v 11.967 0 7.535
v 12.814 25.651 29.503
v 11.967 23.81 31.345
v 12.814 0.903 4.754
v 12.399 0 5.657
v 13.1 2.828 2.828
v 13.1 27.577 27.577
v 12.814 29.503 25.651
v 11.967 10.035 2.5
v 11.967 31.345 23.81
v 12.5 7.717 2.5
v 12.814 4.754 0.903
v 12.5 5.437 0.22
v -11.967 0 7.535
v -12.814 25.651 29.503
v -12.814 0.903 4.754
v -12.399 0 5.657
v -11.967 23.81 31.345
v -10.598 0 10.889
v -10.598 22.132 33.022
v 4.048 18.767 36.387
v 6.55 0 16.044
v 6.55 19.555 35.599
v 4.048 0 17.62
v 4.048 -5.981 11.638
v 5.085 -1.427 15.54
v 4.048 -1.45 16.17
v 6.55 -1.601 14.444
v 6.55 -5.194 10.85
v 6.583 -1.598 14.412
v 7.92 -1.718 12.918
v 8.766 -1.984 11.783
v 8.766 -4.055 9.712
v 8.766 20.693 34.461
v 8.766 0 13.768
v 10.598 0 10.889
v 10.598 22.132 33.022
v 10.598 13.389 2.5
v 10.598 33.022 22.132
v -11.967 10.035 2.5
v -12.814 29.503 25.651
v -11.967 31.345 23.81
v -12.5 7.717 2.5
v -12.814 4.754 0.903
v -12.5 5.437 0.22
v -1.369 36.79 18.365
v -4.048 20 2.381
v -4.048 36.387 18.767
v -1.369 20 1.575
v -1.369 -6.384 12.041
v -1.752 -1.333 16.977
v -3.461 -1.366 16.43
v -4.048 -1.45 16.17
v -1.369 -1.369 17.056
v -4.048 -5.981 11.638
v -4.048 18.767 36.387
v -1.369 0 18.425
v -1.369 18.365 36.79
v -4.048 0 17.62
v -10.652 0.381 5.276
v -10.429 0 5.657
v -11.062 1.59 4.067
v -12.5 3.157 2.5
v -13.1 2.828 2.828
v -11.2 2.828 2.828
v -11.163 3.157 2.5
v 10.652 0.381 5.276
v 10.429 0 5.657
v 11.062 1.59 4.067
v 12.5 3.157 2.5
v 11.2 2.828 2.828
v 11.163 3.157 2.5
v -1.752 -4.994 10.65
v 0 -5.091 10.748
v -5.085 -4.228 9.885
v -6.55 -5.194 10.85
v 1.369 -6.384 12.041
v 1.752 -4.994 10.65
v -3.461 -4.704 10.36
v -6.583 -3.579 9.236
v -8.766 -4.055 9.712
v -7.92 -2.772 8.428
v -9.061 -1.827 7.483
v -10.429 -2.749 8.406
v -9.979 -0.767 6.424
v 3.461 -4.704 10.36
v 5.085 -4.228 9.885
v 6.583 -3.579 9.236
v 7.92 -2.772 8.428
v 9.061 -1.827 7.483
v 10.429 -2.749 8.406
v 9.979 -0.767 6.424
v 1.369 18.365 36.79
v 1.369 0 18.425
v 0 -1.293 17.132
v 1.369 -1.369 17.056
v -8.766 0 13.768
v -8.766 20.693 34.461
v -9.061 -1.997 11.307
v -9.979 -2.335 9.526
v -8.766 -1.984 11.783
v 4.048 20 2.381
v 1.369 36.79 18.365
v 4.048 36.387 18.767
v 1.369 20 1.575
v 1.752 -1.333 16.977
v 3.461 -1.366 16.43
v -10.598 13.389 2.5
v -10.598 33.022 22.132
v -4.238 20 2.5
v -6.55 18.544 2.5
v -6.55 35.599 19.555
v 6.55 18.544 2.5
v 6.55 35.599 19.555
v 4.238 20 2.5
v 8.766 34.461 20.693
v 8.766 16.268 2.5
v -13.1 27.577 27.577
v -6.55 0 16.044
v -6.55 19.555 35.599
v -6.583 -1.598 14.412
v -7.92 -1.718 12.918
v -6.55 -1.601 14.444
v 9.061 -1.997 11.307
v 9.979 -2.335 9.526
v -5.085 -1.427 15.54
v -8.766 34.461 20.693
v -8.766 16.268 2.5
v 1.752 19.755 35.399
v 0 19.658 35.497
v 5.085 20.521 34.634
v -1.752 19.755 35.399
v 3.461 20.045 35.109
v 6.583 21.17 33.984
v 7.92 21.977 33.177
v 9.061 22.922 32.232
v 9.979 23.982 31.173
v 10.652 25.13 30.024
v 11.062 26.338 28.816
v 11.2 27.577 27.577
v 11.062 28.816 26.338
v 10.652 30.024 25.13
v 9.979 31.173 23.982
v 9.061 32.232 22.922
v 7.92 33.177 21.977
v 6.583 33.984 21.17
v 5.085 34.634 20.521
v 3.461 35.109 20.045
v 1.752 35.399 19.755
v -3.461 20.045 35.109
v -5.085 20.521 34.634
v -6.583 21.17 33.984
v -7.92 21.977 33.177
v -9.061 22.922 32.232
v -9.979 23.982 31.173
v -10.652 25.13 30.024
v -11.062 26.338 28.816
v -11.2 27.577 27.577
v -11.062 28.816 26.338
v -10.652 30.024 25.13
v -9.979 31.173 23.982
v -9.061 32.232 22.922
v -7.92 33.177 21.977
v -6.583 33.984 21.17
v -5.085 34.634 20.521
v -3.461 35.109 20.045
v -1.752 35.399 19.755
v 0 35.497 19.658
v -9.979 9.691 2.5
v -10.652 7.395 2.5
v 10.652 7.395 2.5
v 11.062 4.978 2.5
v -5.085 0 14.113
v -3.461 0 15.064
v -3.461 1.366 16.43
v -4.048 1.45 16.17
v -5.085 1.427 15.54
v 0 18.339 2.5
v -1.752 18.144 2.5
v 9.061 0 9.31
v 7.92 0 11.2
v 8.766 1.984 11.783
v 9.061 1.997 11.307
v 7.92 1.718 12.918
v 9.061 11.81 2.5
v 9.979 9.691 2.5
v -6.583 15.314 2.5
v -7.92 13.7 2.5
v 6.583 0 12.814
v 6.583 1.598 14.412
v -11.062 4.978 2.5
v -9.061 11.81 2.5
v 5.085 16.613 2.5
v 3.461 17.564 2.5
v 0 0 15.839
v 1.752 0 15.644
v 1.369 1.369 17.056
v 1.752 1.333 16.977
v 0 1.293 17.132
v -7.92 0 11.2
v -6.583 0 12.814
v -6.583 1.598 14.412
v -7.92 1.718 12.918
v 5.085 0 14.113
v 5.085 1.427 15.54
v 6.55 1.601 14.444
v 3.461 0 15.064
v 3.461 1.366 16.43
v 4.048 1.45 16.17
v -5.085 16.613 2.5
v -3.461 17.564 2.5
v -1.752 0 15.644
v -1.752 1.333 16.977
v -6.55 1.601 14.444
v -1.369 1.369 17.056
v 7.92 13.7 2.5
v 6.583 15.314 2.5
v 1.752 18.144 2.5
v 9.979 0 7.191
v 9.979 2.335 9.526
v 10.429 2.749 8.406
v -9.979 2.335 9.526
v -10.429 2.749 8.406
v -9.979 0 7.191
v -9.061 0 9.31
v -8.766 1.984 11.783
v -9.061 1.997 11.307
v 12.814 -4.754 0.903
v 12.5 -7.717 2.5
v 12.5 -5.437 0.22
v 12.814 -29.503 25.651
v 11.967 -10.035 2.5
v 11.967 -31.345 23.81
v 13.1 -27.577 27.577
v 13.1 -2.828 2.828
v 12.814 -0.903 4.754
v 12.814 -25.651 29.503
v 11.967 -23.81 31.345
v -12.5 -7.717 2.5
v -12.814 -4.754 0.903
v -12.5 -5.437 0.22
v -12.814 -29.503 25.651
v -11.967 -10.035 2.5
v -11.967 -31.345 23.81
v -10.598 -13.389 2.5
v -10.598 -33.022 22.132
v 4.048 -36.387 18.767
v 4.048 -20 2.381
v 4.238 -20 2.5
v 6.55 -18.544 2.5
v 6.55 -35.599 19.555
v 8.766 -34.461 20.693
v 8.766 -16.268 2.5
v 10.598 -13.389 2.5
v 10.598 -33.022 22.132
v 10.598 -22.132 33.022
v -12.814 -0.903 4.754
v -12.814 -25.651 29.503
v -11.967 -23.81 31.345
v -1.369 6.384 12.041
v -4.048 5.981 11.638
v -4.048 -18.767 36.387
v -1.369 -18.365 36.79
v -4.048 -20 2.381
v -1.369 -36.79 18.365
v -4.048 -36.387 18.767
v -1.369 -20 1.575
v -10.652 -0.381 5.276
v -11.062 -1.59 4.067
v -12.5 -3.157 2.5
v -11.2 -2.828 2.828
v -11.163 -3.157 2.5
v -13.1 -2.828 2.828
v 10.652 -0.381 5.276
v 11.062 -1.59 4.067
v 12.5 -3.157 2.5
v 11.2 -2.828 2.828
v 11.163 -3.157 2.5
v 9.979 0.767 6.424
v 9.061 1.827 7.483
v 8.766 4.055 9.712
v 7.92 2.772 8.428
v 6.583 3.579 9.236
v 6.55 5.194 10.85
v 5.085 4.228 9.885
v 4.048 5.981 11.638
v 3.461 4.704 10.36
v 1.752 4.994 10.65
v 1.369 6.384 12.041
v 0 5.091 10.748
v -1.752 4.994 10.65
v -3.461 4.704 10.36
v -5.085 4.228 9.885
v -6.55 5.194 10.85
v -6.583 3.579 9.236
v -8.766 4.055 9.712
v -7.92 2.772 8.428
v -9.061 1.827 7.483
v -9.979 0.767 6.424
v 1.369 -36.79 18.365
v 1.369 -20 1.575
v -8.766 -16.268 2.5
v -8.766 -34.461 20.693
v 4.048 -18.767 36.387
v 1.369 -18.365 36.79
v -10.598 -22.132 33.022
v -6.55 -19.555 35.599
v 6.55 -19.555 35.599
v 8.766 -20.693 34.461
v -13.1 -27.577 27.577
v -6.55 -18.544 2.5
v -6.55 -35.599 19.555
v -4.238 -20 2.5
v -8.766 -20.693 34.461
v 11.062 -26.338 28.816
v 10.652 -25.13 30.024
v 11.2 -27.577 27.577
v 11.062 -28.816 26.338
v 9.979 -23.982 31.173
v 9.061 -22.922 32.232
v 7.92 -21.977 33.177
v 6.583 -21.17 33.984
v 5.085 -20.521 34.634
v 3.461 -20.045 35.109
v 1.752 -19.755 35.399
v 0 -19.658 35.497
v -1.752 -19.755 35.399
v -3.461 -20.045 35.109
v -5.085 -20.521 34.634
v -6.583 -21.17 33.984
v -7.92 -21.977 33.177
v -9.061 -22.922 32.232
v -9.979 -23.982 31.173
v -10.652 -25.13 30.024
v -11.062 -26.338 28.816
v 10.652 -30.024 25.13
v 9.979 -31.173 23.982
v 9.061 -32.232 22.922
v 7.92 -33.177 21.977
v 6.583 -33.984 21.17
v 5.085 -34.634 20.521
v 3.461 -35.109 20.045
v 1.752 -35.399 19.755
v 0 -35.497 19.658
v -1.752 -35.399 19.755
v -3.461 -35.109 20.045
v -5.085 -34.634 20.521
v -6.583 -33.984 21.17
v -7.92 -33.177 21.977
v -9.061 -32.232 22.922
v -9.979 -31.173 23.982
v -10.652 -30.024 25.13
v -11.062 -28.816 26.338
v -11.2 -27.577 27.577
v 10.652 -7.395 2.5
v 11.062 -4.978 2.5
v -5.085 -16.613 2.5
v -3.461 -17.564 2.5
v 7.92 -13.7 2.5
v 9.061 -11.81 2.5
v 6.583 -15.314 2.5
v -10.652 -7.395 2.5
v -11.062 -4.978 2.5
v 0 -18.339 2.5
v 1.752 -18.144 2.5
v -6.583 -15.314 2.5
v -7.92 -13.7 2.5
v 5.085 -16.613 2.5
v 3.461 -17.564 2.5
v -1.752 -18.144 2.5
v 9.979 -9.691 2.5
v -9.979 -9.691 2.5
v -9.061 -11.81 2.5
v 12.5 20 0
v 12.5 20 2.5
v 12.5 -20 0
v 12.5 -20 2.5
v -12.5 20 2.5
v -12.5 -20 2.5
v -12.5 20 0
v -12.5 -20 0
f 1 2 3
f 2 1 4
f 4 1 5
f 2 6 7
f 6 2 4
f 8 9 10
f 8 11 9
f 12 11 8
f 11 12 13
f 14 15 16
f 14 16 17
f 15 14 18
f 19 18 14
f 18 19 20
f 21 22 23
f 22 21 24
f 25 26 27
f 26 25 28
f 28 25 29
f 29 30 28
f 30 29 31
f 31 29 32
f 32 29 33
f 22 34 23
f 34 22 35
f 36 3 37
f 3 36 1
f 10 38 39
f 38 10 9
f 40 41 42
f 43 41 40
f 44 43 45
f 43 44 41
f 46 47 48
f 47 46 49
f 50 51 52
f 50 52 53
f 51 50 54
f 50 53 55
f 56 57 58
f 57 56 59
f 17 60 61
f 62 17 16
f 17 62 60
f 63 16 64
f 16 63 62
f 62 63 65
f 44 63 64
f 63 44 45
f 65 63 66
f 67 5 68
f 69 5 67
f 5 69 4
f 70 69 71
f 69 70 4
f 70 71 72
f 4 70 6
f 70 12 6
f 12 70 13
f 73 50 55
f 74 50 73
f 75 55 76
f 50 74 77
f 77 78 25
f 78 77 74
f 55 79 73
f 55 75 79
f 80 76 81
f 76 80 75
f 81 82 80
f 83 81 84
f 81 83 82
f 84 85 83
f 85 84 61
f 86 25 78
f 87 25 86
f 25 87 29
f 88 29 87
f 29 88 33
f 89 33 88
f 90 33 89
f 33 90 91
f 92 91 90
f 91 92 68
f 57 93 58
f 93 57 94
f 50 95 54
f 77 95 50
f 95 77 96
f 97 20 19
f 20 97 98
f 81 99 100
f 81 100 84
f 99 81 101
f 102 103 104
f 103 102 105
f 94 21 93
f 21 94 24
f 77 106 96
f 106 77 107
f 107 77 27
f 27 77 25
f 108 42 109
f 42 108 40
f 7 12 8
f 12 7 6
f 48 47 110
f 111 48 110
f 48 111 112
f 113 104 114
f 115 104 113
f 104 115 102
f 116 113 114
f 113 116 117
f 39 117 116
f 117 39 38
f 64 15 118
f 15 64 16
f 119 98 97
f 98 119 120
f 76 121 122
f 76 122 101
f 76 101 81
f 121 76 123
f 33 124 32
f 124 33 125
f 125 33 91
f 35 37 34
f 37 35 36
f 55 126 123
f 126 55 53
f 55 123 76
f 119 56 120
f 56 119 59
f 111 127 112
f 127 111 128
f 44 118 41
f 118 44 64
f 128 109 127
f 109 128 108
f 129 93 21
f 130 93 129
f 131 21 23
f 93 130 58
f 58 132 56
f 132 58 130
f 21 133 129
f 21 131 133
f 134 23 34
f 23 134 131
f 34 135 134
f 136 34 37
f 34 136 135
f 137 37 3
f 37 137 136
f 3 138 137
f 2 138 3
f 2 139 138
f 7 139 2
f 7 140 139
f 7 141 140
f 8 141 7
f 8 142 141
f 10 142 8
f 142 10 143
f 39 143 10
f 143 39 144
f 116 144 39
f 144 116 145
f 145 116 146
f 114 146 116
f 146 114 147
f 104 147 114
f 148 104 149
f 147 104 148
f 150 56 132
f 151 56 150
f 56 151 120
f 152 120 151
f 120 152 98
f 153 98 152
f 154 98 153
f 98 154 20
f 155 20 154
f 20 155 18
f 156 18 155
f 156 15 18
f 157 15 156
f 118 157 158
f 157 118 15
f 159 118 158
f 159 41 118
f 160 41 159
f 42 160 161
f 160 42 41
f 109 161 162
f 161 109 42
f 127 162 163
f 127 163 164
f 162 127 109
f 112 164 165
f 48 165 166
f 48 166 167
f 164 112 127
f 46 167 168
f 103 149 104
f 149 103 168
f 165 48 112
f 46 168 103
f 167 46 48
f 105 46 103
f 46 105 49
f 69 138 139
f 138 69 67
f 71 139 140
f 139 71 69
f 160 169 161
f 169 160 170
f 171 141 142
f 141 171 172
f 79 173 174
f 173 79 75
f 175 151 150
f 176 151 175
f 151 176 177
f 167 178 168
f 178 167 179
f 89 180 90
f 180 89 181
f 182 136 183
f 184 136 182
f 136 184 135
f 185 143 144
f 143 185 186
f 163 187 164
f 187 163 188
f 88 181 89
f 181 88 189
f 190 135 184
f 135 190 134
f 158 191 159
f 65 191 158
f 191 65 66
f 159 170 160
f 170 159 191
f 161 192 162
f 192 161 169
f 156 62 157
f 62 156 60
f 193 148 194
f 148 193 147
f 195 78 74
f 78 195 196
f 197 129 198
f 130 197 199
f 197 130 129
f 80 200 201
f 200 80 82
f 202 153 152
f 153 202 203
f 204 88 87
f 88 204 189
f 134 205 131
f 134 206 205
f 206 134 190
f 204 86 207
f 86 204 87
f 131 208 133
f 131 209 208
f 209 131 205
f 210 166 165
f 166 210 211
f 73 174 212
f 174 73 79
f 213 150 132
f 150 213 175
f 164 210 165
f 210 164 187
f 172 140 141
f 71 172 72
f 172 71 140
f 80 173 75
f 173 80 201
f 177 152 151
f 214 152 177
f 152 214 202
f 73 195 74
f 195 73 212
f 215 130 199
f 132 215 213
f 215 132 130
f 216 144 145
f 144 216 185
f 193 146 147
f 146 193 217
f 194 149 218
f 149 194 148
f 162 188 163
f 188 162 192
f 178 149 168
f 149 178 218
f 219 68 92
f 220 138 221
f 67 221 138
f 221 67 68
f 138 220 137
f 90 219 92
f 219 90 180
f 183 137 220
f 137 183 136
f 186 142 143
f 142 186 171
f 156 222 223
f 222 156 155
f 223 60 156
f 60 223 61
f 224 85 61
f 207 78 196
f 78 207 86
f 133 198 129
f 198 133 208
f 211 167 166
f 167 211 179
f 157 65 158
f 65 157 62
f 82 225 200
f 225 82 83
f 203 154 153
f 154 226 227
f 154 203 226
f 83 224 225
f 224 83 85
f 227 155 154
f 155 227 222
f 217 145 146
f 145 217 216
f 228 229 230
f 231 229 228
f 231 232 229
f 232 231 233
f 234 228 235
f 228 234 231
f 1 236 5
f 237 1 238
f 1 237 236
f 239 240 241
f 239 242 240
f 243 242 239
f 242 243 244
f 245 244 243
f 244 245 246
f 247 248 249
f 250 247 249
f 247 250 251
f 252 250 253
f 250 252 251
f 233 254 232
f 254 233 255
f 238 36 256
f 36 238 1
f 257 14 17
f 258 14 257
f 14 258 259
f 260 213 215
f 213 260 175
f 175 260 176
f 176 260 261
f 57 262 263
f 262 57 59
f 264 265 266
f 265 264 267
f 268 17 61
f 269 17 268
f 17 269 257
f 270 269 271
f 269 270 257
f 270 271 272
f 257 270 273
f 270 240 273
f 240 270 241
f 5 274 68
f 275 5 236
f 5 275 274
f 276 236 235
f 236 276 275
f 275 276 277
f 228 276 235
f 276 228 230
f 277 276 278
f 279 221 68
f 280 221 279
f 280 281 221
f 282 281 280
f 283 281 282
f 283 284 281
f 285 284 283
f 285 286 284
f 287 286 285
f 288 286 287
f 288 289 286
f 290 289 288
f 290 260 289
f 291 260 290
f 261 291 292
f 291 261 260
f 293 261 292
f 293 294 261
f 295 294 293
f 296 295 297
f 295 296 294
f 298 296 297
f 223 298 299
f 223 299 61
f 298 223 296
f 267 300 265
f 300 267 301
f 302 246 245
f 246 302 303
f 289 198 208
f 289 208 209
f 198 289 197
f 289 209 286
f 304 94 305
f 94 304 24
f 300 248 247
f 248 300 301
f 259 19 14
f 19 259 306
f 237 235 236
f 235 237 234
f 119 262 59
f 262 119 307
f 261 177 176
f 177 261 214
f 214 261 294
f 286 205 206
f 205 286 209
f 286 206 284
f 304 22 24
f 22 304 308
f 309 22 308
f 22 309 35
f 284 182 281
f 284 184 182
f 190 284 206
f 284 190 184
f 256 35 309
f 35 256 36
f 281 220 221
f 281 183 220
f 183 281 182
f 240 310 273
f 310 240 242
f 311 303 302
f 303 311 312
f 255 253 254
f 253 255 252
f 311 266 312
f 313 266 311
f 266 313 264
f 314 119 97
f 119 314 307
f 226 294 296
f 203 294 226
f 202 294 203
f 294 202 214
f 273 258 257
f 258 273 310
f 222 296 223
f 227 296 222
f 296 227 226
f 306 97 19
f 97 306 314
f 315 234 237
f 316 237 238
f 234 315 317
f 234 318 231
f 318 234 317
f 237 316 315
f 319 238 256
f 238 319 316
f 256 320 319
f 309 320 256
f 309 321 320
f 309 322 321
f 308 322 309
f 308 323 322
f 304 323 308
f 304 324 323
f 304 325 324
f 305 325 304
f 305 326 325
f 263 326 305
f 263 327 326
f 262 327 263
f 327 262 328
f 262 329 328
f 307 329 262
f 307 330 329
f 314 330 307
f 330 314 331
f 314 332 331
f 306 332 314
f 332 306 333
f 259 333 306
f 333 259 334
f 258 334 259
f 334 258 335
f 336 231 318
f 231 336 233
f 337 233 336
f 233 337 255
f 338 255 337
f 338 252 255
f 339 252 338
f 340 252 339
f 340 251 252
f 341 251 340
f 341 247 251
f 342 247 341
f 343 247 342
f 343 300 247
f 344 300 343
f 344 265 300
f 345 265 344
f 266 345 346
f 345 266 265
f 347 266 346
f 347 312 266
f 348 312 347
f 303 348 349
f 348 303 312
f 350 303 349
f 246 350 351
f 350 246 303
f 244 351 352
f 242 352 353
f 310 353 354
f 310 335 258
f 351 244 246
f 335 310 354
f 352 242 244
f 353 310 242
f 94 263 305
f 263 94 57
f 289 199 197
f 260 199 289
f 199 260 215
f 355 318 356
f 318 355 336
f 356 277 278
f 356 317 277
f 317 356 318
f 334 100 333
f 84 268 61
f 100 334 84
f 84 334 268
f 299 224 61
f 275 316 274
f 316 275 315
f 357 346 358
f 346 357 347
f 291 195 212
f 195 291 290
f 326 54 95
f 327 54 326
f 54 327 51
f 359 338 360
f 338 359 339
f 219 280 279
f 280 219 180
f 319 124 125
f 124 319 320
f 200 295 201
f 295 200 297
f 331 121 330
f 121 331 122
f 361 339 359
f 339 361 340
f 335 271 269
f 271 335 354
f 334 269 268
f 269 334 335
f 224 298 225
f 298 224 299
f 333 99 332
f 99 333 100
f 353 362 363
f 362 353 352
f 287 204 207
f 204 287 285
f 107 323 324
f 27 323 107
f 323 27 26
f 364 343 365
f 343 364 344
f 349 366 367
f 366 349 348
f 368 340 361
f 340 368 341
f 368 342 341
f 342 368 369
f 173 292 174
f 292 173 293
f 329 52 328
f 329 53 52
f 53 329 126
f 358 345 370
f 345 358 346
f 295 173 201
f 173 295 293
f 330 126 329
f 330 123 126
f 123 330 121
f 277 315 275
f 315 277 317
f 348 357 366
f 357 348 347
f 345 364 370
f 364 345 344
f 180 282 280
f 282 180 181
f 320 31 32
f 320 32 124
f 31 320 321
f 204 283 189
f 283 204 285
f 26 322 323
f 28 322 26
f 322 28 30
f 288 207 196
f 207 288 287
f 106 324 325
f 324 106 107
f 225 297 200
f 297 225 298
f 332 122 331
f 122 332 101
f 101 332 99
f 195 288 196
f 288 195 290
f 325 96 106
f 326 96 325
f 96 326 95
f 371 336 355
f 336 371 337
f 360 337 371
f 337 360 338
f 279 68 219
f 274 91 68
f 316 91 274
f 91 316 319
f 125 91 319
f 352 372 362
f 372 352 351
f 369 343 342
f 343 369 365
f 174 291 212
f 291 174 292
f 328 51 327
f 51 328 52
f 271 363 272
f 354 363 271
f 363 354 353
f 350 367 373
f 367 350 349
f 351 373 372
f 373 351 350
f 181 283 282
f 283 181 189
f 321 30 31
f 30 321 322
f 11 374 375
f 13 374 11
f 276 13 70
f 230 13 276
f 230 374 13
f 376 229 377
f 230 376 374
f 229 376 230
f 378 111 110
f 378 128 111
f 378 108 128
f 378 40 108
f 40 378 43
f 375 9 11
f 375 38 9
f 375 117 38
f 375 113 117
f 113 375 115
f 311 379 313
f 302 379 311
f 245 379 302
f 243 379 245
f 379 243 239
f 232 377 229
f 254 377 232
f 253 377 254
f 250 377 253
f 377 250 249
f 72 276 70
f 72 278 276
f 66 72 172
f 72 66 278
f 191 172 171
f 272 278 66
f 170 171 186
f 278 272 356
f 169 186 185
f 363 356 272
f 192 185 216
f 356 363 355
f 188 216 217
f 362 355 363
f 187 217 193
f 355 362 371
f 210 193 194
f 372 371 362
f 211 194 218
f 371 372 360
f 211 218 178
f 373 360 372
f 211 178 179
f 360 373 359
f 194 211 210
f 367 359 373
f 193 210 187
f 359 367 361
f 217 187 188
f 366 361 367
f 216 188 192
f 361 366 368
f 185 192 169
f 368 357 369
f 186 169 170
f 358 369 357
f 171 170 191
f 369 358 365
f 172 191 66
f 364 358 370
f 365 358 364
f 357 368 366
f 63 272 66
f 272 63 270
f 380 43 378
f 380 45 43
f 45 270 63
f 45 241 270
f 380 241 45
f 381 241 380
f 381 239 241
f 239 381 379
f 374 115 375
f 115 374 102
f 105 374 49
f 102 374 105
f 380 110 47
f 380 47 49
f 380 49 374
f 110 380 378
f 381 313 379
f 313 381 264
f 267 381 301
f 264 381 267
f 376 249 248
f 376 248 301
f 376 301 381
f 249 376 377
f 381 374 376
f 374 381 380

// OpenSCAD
pipe_r = 22.2/2;

difference(){
    union() {
        rotate([45,0,0]) pipe();
        rotate([90+45,0,0]) pipe();
        translate([0,0,0]) cube([25,40,5],center=true);
    }
    #translate([0,0,-5]) cube([30,50,10],center=true);
}

module pipe() {
    translate([0,35/2+4,0])
    difference(){
        translate([0,0,0]) rotate([90,0,0]) cylinder(h=35,r=pipe_r+2,center=true);
        translate([0,0-3,0]) rotate([90,0,0]) cylinder(h=60, r=pipe_r+0.1, center=true, $fn=40);
        //translate([0,0-3,0]) rotate([90,0,0]) cylinder(h=60, r=6, center=true, $fn=40);
    }
}
